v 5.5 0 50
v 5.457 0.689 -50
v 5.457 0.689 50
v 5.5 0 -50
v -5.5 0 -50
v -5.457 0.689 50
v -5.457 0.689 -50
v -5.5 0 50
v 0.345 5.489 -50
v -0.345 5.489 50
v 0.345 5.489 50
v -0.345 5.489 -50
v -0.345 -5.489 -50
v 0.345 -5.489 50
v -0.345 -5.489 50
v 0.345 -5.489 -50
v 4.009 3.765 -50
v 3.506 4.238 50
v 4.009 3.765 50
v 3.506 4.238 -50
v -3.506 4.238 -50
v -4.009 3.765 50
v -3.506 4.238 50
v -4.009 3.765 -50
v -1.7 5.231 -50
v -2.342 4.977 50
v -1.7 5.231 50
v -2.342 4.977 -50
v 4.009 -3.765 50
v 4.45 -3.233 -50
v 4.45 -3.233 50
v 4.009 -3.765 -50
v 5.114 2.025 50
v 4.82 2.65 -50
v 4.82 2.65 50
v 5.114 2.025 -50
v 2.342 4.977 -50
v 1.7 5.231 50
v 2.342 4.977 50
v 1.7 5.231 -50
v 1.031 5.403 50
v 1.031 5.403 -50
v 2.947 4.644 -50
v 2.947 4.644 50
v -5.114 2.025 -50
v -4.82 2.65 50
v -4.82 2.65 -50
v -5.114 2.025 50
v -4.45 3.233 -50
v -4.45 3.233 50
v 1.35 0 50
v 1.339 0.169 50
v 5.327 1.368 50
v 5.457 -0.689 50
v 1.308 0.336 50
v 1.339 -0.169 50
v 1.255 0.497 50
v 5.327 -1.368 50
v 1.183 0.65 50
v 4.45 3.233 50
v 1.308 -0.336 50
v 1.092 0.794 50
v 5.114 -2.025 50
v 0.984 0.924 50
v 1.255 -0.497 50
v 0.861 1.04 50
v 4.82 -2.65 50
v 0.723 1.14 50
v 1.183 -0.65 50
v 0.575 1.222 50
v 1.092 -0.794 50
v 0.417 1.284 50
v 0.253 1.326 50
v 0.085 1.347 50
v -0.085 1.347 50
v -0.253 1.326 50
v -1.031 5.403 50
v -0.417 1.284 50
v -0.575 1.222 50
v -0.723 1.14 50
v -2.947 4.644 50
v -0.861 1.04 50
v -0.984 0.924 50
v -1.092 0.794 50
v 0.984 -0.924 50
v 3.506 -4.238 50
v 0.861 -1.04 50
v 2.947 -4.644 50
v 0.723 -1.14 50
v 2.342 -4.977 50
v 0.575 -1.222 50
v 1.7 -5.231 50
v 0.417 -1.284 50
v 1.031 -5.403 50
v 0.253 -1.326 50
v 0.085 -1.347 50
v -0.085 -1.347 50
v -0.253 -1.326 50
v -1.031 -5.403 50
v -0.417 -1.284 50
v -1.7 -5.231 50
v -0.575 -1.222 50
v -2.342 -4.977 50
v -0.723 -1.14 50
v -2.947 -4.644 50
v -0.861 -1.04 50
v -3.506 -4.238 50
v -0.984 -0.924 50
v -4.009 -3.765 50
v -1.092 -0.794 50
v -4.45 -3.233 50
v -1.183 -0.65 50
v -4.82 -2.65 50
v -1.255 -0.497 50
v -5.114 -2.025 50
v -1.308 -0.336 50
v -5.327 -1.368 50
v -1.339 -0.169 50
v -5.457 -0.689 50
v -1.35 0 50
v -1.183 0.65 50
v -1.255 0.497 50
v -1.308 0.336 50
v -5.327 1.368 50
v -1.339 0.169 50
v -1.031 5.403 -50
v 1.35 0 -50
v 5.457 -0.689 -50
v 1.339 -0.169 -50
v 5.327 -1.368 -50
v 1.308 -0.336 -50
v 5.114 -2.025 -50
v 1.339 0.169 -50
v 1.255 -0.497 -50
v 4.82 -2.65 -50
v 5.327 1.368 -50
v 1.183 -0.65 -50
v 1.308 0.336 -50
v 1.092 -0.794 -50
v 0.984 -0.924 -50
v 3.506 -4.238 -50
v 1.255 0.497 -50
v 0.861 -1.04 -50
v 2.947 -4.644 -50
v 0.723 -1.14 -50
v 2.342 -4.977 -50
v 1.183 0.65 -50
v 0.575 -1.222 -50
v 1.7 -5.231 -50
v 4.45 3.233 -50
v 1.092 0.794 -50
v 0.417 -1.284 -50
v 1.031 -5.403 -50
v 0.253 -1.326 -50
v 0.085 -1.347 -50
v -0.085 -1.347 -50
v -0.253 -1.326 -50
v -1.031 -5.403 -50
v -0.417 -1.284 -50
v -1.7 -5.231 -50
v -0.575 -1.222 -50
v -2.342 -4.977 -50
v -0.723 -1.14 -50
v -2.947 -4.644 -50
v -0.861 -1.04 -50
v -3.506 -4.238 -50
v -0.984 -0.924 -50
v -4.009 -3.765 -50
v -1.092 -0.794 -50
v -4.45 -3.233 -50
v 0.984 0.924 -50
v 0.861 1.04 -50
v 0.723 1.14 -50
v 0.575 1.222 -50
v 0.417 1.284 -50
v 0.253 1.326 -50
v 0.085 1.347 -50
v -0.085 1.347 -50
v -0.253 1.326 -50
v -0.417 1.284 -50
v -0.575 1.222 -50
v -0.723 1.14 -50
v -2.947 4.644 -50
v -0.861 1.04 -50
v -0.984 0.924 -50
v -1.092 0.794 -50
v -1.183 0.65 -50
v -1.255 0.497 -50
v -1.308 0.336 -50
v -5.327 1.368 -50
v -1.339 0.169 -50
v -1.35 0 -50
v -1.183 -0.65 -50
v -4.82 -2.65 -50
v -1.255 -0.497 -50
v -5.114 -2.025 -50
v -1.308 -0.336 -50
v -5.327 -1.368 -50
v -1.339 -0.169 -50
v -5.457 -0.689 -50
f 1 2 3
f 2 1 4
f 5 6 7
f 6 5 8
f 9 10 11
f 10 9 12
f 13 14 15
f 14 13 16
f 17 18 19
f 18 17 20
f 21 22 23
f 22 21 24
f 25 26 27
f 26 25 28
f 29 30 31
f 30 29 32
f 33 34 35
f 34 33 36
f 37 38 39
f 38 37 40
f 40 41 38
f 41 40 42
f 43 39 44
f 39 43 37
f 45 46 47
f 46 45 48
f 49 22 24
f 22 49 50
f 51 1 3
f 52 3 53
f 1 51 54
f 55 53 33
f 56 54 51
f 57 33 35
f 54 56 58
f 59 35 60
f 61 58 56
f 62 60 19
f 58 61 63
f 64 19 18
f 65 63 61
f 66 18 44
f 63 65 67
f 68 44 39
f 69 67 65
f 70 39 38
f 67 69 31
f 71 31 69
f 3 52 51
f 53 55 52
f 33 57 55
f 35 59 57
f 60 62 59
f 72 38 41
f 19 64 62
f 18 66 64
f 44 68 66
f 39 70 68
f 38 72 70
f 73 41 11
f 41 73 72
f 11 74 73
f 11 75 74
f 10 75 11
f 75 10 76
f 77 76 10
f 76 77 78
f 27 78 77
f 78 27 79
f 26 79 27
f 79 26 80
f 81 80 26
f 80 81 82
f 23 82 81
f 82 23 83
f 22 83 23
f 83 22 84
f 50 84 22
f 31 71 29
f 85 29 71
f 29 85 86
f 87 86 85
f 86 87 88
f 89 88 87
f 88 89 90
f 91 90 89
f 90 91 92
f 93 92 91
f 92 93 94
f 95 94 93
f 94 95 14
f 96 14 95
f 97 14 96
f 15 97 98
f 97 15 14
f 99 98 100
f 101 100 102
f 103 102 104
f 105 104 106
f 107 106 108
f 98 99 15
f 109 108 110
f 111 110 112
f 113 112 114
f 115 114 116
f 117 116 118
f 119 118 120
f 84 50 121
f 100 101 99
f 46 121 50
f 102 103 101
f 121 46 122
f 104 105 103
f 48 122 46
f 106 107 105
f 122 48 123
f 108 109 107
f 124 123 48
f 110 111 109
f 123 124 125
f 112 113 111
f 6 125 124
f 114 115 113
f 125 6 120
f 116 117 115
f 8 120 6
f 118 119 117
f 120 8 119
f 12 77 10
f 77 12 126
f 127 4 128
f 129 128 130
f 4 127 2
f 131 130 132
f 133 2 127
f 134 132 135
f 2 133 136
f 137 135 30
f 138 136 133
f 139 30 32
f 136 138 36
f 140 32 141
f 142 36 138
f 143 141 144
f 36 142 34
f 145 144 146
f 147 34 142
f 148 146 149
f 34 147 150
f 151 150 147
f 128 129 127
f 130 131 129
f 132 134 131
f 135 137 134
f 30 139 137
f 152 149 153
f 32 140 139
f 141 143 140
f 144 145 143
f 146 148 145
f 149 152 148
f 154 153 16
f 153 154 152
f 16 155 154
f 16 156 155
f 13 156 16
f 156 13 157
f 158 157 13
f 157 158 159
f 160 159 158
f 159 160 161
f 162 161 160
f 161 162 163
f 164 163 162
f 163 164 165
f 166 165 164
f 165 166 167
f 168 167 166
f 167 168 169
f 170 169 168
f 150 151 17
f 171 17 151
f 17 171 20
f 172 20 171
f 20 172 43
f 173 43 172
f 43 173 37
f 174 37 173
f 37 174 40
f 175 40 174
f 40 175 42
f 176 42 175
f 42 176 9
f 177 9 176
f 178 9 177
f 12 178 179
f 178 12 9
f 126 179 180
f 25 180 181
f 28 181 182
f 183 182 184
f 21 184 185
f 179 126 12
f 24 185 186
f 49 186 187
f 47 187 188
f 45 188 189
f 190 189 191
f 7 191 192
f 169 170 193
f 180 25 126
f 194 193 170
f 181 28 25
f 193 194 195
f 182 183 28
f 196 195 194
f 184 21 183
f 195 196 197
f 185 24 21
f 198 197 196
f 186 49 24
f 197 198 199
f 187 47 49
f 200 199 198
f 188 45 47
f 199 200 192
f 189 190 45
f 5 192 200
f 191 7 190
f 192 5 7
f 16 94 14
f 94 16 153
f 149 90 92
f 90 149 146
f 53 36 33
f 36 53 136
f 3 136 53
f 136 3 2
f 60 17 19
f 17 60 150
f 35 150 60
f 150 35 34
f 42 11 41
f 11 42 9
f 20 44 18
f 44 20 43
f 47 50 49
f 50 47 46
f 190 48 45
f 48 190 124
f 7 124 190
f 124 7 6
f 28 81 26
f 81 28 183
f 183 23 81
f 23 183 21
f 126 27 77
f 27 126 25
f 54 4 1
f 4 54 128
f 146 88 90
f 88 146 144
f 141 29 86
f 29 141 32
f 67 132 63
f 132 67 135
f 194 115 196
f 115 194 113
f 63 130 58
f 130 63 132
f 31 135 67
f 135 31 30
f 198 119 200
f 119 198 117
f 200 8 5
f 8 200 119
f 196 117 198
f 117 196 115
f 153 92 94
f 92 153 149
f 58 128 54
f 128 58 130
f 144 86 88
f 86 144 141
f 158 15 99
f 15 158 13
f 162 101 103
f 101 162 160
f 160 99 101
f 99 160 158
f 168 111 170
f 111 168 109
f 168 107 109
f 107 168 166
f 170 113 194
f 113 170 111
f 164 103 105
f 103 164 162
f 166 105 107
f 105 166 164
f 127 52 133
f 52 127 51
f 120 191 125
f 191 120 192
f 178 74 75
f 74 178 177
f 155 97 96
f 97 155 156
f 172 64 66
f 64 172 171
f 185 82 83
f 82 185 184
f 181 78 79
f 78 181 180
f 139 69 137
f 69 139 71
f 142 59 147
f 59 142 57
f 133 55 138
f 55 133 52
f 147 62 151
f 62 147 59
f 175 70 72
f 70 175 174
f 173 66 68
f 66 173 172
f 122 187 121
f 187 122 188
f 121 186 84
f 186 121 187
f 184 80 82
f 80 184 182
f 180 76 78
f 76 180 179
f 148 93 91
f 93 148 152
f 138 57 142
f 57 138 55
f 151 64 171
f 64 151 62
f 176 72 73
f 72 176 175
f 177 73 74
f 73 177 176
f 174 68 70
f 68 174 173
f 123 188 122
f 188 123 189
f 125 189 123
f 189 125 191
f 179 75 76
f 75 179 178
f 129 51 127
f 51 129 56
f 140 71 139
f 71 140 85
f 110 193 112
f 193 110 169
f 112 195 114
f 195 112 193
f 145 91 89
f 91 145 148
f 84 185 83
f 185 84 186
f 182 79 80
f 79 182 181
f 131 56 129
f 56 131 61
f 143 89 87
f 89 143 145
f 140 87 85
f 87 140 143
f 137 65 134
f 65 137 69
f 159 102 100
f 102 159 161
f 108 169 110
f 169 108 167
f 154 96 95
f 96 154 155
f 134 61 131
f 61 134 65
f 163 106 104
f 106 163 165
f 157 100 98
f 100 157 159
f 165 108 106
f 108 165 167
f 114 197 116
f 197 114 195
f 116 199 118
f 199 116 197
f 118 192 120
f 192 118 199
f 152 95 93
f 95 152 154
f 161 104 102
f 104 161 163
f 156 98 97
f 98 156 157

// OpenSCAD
$fn = 50;


difference() {
	union() {
		translate(v = [0, 0, -50.0000000000]) {
			cylinder(h = 100, r = 5.5000000000);
		}
	}
	union() {
		translate(v = [0, 0, -100.0000000000]) {
			cylinder(h = 200, r = 1.3500000000);
		}
	}
}
